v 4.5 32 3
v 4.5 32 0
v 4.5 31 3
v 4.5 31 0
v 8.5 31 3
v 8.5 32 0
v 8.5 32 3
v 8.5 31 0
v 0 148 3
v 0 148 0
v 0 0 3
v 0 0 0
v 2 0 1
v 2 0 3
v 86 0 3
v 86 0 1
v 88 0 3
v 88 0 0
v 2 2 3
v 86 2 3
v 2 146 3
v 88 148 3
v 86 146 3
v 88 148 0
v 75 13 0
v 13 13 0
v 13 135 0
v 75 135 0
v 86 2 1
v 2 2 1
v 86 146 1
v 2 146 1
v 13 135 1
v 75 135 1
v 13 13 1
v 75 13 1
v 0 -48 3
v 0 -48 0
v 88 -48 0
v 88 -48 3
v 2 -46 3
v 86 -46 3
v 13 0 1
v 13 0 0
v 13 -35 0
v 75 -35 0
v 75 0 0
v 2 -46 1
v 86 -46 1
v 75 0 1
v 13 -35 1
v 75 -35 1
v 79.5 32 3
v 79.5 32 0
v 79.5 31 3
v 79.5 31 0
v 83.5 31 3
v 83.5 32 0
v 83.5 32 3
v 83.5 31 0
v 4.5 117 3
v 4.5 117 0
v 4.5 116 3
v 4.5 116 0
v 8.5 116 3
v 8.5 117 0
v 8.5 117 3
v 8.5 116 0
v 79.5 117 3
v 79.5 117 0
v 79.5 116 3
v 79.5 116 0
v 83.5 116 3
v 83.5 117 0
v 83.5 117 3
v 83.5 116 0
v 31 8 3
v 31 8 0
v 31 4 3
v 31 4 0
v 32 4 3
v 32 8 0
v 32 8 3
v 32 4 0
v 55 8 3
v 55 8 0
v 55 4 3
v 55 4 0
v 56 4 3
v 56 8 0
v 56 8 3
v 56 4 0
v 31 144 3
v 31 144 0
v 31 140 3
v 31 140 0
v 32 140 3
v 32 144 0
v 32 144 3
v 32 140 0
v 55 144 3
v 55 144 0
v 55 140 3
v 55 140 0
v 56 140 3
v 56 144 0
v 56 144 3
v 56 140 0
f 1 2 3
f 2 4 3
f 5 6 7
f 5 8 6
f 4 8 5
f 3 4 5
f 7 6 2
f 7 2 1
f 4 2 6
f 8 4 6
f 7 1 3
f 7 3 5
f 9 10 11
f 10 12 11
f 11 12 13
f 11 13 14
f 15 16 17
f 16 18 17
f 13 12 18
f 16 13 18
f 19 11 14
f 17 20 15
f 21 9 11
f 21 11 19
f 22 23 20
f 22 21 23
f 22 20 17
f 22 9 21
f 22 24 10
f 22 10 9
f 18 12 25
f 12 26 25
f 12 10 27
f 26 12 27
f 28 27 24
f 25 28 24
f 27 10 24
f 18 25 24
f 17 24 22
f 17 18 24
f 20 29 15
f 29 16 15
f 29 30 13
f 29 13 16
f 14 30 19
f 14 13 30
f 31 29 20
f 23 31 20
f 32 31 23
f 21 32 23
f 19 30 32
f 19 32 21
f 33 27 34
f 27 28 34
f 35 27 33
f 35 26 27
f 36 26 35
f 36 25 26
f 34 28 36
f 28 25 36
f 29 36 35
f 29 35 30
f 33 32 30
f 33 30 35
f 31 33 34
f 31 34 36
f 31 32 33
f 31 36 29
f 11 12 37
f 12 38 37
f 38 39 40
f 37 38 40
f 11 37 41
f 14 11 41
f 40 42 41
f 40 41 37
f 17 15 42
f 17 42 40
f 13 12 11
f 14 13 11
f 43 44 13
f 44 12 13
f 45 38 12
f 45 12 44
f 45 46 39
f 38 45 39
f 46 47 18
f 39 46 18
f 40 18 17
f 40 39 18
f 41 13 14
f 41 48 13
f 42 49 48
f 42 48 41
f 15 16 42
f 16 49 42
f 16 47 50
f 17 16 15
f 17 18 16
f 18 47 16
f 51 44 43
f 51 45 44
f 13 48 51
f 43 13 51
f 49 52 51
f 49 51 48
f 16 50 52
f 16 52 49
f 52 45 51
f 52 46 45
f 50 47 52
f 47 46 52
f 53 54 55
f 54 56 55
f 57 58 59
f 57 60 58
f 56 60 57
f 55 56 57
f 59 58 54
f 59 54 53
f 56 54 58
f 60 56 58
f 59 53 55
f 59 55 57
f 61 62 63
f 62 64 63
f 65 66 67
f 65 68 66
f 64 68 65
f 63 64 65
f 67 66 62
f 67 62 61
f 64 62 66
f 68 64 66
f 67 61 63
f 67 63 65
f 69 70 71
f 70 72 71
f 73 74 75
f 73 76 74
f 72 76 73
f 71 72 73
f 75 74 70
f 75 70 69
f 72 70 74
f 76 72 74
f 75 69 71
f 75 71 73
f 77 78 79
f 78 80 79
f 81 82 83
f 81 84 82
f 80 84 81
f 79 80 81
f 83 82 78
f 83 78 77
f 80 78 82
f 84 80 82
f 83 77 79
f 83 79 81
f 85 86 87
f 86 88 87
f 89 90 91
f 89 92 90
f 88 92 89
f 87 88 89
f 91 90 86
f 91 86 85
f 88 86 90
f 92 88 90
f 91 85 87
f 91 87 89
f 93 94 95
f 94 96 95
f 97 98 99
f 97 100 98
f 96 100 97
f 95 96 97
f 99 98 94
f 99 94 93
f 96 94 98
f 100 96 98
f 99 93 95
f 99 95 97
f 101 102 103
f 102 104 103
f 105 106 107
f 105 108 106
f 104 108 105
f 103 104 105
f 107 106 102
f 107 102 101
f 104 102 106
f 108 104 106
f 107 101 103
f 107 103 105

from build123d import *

# Parameters (mm, degrees)
BOX003_W     = 4
BOX003_H     = 1
BOX003_DEPTH = 3
BOX004_W     = 4
BOX004_H     = 1
BOX004_DEPTH = 3
BOX005_W     = 4
BOX005_H     = 1
BOX005_DEPTH = 3
BOX006_W     = 4
BOX006_H     = 1
BOX006_DEPTH = 3
BOX007_W     = 1
BOX007_H     = 4
BOX007_DEPTH = 3
BOX008_W     = 1
BOX008_H     = 4
BOX008_DEPTH = 3
BOX009_W     = 1
BOX009_H     = 4
BOX009_DEPTH = 3
BOX010_W     = 1
BOX010_H     = 4
BOX010_DEPTH = 3
BOX012_W     = 84
BOX012_H     = 48
BOX012_DEPTH = 2
BOX002_W     = 84
BOX002_H     = 144
BOX002_DEPTH = 2
BOX001_W     = 62
BOX001_H     = 122
BOX001_DEPTH = 3
BOX_W        = 88
BOX_H        = 148
BOX_DEPTH    = 3
BOX013_W     = 62
BOX013_H     = 35
BOX013_DEPTH = 3
BOX011_W     = 88
BOX011_H     = 48
BOX011_DEPTH = 3


with BuildPart() as cube003:
    # Box003 → Box003 (new body)
    with BuildSketch(Plane(origin=(4.5, 31, 0), x_dir=(1, 0, 0), z_dir=(0, 0, 1))):
        with Locations((2, 0.5)):
            Rectangle(BOX003_W, BOX003_H)
    extrude(amount=BOX003_DEPTH)


with BuildPart() as cube004:
    # Box004 → Box004 (new body)
    with BuildSketch(Plane(origin=(79.5, 31, 0), x_dir=(1, 0, 0), z_dir=(0, 0, 1))):
        with Locations((2, 0.5)):
            Rectangle(BOX004_W, BOX004_H)
    extrude(amount=BOX004_DEPTH)


with BuildPart() as cube005:
    # Box005 → Box005 (new body)
    with BuildSketch(Plane(origin=(4.5, 116, 0), x_dir=(1, 0, 0), z_dir=(0, 0, 1))):
        with Locations((2, 0.5)):
            Rectangle(BOX005_W, BOX005_H)
    extrude(amount=BOX005_DEPTH)


with BuildPart() as cube006:
    # Box006 → Box006 (new body)
    with BuildSketch(Plane(origin=(79.5, 116, 0), x_dir=(1, 0, 0), z_dir=(0, 0, 1))):
        with Locations((2, 0.5)):
            Rectangle(BOX006_W, BOX006_H)
    extrude(amount=BOX006_DEPTH)


with BuildPart() as cube007:
    # Box007 → Box007 (new body)
    with BuildSketch(Plane(origin=(31, 4, 0), x_dir=(1, 0, 0), z_dir=(0, 0, 1))):
        with Locations((0.5, 2)):
            Rectangle(BOX007_W, BOX007_H)
    extrude(amount=BOX007_DEPTH)


with BuildPart() as cube008:
    # Box008 → Box008 (new body)
    with BuildSketch(Plane(origin=(55, 4, 0), x_dir=(1, 0, 0), z_dir=(0, 0, 1))):
        with Locations((0.5, 2)):
            Rectangle(BOX008_W, BOX008_H)
    extrude(amount=BOX008_DEPTH)


with BuildPart() as cube009:
    # Box009 → Box009 (new body)
    with BuildSketch(Plane(origin=(31, 140, 0), x_dir=(1, 0, 0), z_dir=(0, 0, 1))):
        with Locations((0.5, 2)):
            Rectangle(BOX009_W, BOX009_H)
    extrude(amount=BOX009_DEPTH)


with BuildPart() as cube010:
    # Box010 → Box010 (new body)
    with BuildSketch(Plane(origin=(55, 140, 0), x_dir=(1, 0, 0), z_dir=(0, 0, 1))):
        with Locations((0.5, 2)):
            Rectangle(BOX010_W, BOX010_H)
    extrude(amount=BOX010_DEPTH)


with BuildPart() as cube012:
    # Box012 → Box012 (new body)
    with BuildSketch(Plane(origin=(2, -46, 1), x_dir=(1, 0, 0), z_dir=(0, 0, 1))):
        with Locations((42, 24)):
            Rectangle(BOX012_W, BOX012_H)
    extrude(amount=BOX012_DEPTH)


with BuildPart() as cube002:
    # Box002 → Box002 (new body)
    with BuildSketch(Plane(origin=(2, 2, 1), x_dir=(1, 0, 0), z_dir=(0, 0, 1))):
        with Locations((42, 72)):
            Rectangle(BOX002_W, BOX002_H)
    extrude(amount=BOX002_DEPTH)


with BuildPart() as cube001:
    # Box001 → Box001 (new body)
    with BuildSketch(Plane(origin=(13, 13, 0), x_dir=(1, 0, 0), z_dir=(0, 0, 1))):
        with Locations((31, 61)):
            Rectangle(BOX001_W, BOX001_H)
    extrude(amount=BOX001_DEPTH)


with BuildPart() as cut003:
    # Box → Box (new body)
    with BuildSketch(Plane.XY):
        with Locations((44, 74)):
            Rectangle(BOX_W, BOX_H)
    extrude(amount=BOX_DEPTH)

    # Cut: cut Cube001
    add(cube001.part, mode=Mode.SUBTRACT)

    # Cut001: cut Cube002
    add(cube002.part, mode=Mode.SUBTRACT)

    # Cut003: cut Cube012
    add(cube012.part, mode=Mode.SUBTRACT)


with BuildPart() as cube013:
    # Box013 → Box013 (new body)
    with BuildSketch(Plane(origin=(13, -35, 0), x_dir=(1, 0, 0), z_dir=(0, 0, 1))):
        with Locations((31, 17.5)):
            Rectangle(BOX013_W, BOX013_H)
    extrude(amount=BOX013_DEPTH)


with BuildPart() as cut004:
    # Box011 → Box011 (new body)
    with BuildSketch(Plane(origin=(0, -48, 0), x_dir=(1, 0, 0), z_dir=(0, 0, 1))):
        with Locations((44, 24)):
            Rectangle(BOX011_W, BOX011_H)
    extrude(amount=BOX011_DEPTH)

    # Cut002: cut Cube012
    add(cube012.part, mode=Mode.SUBTRACT)

    # Cut004: cut Cube013
    add(cube013.part, mode=Mode.SUBTRACT)


solid = Compound([cube003.part, cube004.part, cube005.part, cube006.part, cube007.part, cube008.part, cube009.part, cube010.part, cut003.part, cut004.part])
